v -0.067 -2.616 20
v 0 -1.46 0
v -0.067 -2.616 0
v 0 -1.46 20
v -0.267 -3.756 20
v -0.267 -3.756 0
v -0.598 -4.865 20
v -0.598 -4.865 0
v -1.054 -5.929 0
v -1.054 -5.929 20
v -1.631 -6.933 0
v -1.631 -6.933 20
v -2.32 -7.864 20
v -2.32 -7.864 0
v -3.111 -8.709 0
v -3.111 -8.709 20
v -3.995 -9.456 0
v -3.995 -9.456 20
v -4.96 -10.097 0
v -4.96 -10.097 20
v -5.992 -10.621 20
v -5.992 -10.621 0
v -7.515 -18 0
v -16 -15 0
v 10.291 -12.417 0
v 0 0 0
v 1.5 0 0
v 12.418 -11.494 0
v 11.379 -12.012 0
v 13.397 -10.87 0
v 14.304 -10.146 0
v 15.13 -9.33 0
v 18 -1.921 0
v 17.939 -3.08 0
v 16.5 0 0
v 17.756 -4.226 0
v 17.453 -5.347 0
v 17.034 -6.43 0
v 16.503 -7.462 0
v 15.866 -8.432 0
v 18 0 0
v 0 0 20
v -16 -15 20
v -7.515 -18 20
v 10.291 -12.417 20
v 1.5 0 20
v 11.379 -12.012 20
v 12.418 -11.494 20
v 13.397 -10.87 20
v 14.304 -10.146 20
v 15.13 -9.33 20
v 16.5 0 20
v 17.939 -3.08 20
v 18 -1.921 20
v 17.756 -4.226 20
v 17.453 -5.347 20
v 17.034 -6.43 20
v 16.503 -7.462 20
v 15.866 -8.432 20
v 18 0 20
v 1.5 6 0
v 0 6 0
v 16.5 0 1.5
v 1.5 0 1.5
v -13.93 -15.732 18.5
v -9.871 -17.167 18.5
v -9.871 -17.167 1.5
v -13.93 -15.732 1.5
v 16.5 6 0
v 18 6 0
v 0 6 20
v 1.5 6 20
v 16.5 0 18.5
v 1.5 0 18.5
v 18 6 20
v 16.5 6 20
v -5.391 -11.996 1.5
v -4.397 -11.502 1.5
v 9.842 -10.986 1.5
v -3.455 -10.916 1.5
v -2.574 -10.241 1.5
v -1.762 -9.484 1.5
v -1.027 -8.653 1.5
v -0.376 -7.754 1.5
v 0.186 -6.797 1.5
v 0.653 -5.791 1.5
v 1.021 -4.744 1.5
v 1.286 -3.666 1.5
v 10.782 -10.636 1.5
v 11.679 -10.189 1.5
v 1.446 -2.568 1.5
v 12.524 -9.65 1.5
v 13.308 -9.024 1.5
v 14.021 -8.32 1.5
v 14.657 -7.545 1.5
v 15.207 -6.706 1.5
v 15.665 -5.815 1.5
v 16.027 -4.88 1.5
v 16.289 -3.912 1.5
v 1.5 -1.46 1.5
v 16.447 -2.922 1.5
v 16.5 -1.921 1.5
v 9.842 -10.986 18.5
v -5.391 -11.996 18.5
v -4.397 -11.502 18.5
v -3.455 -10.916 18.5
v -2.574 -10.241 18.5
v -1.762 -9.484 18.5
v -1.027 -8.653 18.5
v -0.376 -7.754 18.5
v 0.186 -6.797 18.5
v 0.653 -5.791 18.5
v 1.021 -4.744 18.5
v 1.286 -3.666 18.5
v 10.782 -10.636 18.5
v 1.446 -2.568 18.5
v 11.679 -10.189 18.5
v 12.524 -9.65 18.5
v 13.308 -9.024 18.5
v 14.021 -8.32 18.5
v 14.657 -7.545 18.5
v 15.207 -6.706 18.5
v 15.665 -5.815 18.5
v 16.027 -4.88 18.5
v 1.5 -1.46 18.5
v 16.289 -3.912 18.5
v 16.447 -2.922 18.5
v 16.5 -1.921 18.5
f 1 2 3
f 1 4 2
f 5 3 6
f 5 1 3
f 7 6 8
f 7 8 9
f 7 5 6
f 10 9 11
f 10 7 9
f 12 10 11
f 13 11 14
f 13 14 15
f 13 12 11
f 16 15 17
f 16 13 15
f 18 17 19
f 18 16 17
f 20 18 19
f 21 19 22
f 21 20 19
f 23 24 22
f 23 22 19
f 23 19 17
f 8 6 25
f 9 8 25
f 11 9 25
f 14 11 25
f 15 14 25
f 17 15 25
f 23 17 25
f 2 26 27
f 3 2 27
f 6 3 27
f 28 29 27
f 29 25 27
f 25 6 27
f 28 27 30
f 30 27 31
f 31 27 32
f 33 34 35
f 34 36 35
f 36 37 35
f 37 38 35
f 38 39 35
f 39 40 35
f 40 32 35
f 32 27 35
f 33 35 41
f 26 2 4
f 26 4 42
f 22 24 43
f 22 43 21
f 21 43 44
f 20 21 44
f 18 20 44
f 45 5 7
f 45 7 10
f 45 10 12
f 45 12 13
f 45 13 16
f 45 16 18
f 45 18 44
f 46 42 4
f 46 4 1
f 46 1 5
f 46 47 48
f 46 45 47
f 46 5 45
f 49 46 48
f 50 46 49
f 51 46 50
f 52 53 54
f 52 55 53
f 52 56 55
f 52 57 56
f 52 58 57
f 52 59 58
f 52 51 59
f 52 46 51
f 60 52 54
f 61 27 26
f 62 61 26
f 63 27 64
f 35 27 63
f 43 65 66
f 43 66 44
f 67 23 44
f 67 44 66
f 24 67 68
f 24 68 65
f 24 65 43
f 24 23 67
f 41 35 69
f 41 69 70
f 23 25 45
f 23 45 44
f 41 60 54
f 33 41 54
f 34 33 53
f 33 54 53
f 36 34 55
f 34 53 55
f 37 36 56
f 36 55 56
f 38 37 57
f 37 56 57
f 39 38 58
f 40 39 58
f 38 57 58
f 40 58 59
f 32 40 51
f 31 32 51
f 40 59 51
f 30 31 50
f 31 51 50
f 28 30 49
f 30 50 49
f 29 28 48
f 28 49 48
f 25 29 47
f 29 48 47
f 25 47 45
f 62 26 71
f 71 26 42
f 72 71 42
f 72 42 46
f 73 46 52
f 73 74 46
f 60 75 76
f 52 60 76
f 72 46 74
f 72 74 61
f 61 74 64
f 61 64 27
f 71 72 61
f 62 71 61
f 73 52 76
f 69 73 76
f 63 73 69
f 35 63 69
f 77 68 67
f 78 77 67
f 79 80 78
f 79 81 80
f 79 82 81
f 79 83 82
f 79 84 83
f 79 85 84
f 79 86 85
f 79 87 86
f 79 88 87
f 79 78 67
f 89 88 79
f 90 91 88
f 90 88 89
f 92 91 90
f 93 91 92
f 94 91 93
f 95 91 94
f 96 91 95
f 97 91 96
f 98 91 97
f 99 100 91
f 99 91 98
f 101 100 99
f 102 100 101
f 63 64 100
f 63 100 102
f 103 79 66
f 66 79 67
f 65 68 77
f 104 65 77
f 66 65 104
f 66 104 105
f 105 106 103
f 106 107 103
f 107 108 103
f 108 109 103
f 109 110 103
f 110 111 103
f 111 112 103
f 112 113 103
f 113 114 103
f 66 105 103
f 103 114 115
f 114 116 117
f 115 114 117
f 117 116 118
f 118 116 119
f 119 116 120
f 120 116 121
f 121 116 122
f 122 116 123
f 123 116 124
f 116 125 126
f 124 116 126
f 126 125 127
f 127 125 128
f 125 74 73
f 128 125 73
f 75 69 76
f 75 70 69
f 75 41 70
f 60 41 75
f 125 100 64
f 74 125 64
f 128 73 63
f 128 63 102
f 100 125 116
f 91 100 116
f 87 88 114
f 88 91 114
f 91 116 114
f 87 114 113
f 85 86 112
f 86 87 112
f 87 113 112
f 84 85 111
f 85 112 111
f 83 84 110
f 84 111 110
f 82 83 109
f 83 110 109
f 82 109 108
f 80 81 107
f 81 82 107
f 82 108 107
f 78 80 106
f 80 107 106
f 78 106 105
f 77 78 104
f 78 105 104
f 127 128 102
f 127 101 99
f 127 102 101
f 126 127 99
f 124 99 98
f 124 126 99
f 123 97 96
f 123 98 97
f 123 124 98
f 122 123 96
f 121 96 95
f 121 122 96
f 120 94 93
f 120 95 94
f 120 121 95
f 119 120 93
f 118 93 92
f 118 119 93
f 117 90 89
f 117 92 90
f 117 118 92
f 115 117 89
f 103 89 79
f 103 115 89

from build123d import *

# Parameters (mm, degrees)
PAD_DEPTH    = 20
FILLET_R     = 11
FILLET001_R  = 10
THICKNESS_T  = -1.5
SKETCH001_W  = 1.5
SKETCH001_H  = 20
PAD001_DEPTH = 6


with BuildPart() as part:
    # Sketch → Pad (new body)
    with BuildSketch(Plane.XY):
        Polygon((0, 0), (18, 0), (18, -10), (-7.514719, -18), (-16, -15), (0, -8), align=None)
    extrude(amount=PAD_DEPTH)

    # Fillet
    fillet_edges = [part.edges().sort_by_distance(p)[0] for p in [
        (18, -10, 10),
    ]]
    fillet(fillet_edges, radius=FILLET_R)

    # Fillet001
    fillet001_edges = [part.edges().sort_by_distance(p)[0] for p in [
        (0, -8, 10),
    ]]
    fillet(fillet001_edges, radius=FILLET001_R)

    # Thickness
    thickness_openings = [part.faces().sort_by_distance(p)[0] for p in [
        (9, 0, 10),
        (-11.757359, -16.5, 10),
    ]]
    offset(amount=THICKNESS_T, openings=thickness_openings)

    # Sketch001 → Pad001 (new body)
    with BuildSketch(Plane(origin=(0, 0, 0), x_dir=(-1, 0, 0), z_dir=(0, 1, 0))):
        with Locations((-17.25, 10)):
            Rectangle(SKETCH001_W, SKETCH001_H)
        with Locations((-0.75, 10)):
            Rectangle(SKETCH001_W, SKETCH001_H)
    extrude(amount=PAD001_DEPTH)


solid = part.part
